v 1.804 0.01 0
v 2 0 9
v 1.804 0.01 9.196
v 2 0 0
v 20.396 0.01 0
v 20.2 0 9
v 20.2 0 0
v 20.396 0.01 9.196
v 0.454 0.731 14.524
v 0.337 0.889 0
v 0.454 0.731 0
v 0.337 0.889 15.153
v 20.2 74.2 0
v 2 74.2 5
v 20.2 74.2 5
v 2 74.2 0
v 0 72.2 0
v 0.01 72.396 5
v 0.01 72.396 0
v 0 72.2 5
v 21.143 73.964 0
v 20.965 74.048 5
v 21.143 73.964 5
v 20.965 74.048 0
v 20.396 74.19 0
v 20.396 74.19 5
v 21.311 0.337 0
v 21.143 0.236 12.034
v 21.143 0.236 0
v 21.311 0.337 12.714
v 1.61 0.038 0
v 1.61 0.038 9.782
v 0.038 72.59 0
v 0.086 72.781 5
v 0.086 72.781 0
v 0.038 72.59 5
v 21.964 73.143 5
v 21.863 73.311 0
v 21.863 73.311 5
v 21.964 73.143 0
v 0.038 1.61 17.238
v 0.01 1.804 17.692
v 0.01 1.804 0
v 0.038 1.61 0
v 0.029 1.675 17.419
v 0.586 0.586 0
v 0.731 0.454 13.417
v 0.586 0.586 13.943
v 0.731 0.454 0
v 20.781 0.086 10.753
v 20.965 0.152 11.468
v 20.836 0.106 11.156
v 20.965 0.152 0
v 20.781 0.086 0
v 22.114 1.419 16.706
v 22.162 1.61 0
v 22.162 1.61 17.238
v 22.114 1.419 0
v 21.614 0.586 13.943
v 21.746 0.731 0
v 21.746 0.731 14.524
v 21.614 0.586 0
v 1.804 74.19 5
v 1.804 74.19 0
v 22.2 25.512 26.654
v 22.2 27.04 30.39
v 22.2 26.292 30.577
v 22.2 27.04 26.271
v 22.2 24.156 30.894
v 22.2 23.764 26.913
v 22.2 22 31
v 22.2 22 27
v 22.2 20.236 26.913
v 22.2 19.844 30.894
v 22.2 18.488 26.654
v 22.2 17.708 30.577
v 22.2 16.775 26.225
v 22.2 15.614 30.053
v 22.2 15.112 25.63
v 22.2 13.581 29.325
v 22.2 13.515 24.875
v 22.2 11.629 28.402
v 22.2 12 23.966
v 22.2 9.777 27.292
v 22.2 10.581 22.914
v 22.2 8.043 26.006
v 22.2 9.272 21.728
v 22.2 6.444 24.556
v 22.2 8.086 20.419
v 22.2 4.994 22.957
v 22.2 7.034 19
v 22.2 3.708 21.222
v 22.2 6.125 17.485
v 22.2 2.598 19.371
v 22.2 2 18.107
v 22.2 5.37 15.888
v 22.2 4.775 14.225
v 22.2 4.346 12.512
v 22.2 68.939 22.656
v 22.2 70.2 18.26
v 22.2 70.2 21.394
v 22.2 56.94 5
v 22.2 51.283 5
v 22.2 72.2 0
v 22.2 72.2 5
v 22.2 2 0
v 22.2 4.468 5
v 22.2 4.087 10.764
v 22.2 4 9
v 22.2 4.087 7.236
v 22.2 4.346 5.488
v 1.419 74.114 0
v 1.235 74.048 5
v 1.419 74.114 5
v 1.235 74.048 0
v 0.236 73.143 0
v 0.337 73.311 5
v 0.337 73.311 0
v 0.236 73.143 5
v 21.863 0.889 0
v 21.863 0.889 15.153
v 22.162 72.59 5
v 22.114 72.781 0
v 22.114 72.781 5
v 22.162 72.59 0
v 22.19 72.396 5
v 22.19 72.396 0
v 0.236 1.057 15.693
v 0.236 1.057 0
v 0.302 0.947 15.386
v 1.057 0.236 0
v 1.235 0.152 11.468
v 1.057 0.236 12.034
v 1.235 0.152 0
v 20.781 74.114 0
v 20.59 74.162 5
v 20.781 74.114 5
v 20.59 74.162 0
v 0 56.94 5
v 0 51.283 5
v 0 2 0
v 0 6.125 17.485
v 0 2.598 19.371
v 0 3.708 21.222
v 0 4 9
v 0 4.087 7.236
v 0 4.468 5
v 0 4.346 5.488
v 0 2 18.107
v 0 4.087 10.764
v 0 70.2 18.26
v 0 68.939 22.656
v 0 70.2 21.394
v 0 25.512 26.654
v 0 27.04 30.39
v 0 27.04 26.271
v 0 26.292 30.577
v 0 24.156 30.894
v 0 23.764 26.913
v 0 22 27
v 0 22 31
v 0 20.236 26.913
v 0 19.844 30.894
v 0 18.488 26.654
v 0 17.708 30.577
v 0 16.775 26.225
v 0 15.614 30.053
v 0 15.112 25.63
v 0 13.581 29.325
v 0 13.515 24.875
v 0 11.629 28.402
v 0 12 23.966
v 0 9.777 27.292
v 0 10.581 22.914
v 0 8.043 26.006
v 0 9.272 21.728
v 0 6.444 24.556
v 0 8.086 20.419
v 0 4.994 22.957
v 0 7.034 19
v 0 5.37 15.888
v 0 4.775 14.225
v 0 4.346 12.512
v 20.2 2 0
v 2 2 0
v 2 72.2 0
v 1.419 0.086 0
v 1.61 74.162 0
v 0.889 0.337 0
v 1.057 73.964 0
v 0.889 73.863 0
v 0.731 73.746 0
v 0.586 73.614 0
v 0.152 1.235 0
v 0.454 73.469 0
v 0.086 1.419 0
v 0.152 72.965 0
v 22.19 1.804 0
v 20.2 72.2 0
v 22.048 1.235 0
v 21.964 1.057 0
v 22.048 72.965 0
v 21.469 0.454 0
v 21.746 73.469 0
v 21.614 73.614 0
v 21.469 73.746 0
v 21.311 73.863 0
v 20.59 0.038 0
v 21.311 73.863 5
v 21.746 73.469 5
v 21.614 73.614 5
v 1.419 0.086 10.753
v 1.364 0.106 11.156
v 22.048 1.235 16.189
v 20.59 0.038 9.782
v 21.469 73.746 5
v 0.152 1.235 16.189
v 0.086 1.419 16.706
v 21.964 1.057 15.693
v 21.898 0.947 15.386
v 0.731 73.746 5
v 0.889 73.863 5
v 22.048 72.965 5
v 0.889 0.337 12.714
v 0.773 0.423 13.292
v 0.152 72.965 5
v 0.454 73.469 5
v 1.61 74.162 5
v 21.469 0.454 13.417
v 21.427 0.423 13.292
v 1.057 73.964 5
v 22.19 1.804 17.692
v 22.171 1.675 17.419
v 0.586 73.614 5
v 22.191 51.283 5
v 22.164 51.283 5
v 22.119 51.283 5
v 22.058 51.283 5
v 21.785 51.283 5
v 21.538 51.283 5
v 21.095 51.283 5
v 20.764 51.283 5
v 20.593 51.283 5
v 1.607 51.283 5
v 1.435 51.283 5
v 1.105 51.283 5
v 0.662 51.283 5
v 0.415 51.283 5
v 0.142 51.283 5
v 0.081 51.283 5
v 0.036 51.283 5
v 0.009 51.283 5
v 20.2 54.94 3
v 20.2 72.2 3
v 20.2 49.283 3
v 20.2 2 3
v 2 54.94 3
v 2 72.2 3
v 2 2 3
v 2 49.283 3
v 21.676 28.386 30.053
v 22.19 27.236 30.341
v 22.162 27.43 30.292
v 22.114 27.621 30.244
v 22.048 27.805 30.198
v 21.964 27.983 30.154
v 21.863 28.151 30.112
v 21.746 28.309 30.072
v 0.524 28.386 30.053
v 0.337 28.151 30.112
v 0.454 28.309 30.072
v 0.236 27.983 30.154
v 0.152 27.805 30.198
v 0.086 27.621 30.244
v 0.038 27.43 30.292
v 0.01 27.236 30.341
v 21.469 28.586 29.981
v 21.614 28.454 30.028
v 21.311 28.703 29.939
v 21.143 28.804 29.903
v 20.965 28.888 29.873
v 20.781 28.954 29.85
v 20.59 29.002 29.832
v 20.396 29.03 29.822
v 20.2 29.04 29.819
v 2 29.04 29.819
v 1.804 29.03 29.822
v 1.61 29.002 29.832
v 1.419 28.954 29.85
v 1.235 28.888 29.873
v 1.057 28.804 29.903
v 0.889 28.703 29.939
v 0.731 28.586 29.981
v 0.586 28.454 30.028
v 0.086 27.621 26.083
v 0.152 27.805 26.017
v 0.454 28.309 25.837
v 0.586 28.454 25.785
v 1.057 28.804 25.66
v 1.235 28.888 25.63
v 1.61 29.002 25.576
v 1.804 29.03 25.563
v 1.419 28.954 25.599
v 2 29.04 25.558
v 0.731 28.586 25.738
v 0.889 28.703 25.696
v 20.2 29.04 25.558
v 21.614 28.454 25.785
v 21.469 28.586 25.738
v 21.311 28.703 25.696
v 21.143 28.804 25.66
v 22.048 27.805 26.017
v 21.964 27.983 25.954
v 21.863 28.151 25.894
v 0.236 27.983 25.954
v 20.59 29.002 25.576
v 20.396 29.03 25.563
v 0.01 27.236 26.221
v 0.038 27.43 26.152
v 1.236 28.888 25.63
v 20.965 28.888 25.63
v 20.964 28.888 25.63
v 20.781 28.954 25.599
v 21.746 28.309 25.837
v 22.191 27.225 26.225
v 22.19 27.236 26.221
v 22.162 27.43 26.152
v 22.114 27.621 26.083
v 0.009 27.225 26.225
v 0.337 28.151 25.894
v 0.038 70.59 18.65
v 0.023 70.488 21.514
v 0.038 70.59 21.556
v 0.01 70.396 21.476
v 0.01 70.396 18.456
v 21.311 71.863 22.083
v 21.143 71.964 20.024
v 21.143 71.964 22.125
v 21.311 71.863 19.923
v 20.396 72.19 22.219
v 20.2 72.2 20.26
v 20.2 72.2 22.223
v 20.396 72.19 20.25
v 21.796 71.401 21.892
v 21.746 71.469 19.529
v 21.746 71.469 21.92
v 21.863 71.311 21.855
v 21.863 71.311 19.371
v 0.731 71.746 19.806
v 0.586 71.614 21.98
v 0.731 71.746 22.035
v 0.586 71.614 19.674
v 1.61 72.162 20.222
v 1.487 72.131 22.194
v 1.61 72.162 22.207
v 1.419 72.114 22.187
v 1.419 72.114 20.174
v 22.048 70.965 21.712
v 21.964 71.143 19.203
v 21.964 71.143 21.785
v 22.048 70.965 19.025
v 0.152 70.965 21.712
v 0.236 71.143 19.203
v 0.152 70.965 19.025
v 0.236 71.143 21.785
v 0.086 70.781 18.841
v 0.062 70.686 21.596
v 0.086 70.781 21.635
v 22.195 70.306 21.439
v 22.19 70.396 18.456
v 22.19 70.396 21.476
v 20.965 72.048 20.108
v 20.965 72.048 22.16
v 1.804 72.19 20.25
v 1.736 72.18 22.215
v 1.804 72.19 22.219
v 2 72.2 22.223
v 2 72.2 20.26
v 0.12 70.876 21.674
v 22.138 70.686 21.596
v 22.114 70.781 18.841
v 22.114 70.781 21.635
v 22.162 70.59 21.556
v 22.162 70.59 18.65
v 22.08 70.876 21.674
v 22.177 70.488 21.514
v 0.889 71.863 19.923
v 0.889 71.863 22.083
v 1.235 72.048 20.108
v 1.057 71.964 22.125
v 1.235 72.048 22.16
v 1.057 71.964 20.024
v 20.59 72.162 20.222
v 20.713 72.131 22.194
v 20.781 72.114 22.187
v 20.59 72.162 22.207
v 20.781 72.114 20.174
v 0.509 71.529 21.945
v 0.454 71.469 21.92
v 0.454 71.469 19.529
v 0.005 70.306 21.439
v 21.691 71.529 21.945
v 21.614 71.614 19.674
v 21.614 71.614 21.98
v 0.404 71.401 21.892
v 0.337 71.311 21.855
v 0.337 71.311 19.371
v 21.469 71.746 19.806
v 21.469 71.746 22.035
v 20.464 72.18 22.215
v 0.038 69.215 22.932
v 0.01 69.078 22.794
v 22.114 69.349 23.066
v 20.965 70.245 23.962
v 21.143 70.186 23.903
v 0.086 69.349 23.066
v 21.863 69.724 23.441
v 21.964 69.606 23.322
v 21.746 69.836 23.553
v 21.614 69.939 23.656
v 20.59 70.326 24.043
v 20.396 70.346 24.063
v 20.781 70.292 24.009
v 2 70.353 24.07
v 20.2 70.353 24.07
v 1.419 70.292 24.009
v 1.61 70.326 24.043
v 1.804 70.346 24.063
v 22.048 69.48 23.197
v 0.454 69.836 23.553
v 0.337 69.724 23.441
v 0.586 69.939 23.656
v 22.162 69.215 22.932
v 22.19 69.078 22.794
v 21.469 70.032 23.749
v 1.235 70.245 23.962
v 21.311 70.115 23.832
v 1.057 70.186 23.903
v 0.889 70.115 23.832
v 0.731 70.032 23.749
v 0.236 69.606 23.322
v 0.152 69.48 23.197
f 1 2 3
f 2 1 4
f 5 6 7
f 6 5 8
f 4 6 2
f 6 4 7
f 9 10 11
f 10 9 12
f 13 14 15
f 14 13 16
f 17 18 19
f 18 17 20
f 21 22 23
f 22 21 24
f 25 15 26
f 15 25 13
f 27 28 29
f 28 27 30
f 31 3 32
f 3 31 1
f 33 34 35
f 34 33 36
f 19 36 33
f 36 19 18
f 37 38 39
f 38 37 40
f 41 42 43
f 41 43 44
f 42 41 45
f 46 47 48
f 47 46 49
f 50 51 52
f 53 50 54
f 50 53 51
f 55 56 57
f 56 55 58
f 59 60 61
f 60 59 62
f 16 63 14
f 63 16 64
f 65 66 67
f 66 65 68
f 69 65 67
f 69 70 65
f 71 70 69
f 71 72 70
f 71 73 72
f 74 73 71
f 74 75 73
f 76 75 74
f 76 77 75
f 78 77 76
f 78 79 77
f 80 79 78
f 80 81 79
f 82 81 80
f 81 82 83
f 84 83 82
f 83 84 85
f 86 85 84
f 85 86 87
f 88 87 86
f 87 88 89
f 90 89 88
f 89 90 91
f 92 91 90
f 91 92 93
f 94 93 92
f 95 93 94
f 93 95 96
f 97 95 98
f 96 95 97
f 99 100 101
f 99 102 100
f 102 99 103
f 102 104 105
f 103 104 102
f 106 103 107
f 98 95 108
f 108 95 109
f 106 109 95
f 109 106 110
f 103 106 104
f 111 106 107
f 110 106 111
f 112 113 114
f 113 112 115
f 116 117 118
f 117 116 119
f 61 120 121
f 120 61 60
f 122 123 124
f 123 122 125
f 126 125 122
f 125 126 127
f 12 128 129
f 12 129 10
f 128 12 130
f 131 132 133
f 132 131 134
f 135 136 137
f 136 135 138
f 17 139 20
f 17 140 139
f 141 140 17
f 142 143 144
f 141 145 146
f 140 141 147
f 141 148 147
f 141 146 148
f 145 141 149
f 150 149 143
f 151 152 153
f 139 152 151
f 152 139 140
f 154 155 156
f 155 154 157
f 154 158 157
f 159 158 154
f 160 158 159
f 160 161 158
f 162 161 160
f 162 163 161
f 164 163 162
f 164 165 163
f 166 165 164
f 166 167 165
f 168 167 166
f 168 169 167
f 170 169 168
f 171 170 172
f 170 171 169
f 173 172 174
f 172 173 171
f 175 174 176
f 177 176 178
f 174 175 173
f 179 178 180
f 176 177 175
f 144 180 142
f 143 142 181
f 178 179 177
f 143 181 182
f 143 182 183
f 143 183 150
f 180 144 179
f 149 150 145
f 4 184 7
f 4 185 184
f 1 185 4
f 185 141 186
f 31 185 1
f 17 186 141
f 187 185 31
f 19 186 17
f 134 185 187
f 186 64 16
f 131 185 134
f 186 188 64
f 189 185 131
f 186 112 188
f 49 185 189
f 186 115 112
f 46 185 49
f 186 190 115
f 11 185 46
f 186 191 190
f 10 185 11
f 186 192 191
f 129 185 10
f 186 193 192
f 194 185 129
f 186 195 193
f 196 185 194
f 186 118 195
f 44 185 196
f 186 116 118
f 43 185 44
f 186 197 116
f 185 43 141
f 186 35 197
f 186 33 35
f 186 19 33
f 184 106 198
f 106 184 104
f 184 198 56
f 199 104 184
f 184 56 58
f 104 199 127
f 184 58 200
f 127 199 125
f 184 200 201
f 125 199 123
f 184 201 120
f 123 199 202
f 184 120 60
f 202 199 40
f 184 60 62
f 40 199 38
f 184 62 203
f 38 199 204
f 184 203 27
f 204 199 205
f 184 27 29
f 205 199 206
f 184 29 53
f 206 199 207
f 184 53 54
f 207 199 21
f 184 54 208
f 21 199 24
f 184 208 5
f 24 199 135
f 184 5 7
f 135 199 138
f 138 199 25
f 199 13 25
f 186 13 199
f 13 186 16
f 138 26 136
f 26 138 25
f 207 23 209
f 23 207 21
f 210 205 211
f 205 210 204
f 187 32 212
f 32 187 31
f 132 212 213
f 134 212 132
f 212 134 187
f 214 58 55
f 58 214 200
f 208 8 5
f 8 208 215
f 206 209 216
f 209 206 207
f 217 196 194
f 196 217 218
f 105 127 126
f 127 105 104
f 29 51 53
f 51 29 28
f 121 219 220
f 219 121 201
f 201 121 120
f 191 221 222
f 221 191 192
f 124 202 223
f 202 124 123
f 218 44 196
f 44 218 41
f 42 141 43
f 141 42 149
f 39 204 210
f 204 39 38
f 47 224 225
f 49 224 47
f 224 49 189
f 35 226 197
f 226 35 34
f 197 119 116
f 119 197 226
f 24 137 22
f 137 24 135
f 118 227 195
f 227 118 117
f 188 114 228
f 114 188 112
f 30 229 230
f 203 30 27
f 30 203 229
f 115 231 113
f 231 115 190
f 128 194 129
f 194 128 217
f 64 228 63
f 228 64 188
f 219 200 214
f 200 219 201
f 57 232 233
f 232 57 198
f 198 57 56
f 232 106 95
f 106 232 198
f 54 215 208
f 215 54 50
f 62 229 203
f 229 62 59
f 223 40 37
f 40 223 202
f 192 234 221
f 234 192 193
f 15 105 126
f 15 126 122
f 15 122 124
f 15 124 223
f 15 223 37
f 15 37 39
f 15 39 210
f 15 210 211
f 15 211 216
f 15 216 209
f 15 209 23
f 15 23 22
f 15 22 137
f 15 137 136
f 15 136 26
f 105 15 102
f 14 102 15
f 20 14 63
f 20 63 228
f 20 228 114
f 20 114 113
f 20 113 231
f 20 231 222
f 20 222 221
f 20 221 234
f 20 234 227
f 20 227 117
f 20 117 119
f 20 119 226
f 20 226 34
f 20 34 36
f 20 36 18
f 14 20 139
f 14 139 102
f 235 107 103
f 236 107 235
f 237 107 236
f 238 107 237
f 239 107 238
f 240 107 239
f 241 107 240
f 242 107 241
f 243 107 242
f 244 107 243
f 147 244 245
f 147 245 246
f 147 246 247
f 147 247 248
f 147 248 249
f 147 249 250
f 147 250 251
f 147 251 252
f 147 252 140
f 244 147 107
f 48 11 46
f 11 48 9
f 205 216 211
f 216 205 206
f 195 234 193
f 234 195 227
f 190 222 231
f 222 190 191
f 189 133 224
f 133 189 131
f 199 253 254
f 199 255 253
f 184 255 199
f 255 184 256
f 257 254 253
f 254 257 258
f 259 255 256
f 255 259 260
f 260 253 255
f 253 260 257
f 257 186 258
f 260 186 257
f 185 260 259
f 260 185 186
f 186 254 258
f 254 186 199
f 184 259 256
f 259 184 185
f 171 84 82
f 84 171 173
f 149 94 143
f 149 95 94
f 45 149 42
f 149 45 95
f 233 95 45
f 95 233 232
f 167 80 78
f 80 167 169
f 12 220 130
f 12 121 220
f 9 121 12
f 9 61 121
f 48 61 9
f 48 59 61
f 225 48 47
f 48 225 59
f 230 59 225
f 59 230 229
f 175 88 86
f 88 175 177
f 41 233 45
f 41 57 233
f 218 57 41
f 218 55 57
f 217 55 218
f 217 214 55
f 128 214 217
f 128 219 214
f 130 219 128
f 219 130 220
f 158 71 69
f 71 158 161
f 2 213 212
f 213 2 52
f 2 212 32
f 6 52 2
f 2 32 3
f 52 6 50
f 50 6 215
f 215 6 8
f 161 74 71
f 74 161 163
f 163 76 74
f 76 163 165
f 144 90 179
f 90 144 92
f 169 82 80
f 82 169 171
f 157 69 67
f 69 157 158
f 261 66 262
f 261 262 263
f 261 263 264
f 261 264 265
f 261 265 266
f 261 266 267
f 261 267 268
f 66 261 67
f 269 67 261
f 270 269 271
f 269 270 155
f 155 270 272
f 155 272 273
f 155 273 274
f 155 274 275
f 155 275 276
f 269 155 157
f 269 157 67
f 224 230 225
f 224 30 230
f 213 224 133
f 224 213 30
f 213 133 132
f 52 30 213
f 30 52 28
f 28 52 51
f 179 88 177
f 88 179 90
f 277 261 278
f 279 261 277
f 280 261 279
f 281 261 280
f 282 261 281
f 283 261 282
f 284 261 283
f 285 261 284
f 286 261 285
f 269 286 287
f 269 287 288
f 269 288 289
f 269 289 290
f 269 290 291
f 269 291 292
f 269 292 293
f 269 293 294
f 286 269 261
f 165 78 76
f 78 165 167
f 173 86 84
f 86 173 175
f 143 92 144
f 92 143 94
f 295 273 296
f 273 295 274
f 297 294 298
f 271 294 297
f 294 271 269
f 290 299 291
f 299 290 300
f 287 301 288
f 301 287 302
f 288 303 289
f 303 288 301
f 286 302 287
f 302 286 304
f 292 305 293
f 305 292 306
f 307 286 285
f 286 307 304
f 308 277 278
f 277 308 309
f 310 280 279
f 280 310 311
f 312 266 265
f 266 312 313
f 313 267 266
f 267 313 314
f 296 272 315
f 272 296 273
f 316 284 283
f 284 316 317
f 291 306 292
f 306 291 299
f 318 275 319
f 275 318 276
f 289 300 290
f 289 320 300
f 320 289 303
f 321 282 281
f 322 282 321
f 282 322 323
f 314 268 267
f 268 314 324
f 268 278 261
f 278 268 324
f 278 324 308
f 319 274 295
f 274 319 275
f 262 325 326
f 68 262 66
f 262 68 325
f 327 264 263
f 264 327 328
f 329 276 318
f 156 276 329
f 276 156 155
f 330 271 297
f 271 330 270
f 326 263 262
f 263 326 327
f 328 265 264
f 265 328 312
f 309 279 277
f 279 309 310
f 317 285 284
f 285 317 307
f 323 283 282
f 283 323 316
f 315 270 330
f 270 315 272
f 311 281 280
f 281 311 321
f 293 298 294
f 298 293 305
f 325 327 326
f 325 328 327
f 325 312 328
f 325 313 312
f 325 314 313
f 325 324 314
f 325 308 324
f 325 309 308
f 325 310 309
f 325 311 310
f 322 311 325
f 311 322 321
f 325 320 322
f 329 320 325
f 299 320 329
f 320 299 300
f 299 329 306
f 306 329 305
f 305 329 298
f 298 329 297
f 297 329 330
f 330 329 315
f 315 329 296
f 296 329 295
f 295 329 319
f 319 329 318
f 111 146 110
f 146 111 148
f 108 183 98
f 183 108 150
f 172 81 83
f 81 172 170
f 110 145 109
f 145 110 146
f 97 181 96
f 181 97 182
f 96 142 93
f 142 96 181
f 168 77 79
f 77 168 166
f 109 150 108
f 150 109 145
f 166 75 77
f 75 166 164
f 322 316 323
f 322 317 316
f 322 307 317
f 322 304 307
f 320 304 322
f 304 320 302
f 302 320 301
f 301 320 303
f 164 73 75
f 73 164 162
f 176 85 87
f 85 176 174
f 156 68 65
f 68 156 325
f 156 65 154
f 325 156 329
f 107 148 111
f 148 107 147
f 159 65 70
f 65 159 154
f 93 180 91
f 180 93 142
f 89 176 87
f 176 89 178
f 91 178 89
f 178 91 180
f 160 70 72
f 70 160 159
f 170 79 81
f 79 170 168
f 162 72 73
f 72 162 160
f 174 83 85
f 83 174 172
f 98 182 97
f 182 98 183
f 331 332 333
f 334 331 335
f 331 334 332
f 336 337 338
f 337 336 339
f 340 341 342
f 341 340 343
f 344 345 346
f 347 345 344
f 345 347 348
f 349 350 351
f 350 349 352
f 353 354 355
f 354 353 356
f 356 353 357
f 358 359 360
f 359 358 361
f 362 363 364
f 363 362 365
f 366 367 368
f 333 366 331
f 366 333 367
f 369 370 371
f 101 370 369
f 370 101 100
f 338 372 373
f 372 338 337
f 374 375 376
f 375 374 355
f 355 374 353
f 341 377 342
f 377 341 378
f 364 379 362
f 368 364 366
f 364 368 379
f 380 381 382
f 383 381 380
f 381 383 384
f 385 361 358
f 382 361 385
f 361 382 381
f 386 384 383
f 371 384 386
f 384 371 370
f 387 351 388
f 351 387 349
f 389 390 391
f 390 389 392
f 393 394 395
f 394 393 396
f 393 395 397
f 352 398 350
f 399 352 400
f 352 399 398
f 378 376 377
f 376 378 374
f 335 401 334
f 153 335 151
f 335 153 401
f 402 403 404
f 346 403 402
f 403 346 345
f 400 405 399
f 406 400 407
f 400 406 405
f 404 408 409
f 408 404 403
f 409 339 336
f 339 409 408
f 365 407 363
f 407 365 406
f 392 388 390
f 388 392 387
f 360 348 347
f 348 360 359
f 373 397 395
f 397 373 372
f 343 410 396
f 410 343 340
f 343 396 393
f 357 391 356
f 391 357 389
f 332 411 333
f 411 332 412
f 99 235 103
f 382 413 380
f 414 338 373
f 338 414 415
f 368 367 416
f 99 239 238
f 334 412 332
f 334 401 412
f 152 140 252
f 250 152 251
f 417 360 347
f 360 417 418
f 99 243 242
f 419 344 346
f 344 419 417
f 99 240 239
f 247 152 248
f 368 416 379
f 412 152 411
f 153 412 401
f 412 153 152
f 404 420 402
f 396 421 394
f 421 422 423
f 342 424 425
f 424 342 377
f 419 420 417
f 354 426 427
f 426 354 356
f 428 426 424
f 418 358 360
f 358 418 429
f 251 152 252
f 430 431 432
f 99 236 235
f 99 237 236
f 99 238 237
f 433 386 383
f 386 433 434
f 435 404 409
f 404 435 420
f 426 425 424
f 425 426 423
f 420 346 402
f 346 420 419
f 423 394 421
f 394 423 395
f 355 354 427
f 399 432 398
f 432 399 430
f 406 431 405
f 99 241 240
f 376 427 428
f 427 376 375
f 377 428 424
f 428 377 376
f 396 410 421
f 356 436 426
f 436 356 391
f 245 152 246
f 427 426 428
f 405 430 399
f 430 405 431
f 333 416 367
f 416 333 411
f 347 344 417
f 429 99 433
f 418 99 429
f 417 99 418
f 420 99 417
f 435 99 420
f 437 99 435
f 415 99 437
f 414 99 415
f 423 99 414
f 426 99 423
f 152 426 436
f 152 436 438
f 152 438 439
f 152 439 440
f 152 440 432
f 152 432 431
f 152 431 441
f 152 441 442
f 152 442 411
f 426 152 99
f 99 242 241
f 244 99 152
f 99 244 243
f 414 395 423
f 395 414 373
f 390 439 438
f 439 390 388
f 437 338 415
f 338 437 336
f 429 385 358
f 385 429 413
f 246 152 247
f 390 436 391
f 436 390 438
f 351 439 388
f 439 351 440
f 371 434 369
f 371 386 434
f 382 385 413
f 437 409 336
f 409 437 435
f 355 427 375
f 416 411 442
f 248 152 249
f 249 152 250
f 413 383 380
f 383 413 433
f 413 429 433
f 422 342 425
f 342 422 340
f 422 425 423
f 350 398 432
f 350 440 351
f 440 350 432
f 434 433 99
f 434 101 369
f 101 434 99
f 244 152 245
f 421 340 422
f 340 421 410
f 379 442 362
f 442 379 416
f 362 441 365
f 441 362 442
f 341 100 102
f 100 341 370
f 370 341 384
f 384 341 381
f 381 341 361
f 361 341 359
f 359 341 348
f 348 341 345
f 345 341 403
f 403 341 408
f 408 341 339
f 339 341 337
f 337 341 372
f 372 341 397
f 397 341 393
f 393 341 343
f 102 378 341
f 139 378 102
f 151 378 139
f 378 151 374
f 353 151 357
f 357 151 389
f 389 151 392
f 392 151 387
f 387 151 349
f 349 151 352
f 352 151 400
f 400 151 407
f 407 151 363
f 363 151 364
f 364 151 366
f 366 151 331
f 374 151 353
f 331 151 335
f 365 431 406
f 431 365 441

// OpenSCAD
// file: ../modules/roundedcube.scad
// A single integer creates a cube with the specified wall distance. Default [1, 1, 1]
// size = 5;

// An [x, y, z] vector specifies distance on each axis. Default [1, 1, 1]
// size = [2, 3, 5];

// Whether or not to place the object centered on the origin. Default false
// center = true|false;

// Specify a rounding radius. Default 0.5
// radius = 0.5

// Specify where to apply the rounded corners. Default "all"
// apply_to = "all"|"x"|"y"|"z"|"zmax"|"zmin"|"xmax"|"xmin"|"ymax"|"ymin"

// Higher definition curves
$fs = $preview ? $fs : 0.01;

module roundedcube(size = [1, 1, 1], center = false, radius = 0.5, apply_to = "all") {
	// If single value, convert to [x, y, z] vector
	size = (size[0] == undef) ? [size, size, size] : size;

    echo(str("roundedcube(", size, ", radius=", radius, ", apply_to=", apply_to));

	translate_min = 0;
	translate_xmax = size[0];
	translate_ymax = size[1];
	translate_zmax = size[2];

	diameter = radius * 2;

    function adj2(i,dt,df) = (i==0)?dt:df;
    function adj(i,d) = adj2(i,d,-d);
    function adjR(i) = adj(i,radius);
    
	obj_translate = (center == false) ?
		[0, 0, 0] : [
			-(size[0] / 2),
			-(size[1] / 2),
			-(size[2] / 2)
		];

	translate(v = obj_translate) {
		hull() {
			for (xi = [0:1]) {
                translate_x = [translate_min, translate_xmax][xi];
				x_at = (xi == 0) ? "min" : "max";
				for (yi = [0:1]) {
                    translate_y = [translate_min, translate_ymax][yi];
   				    y_at = (yi == 0) ? "min" : "max";
					for (zi = [0:1]) {
                        translate_z = [translate_min, translate_zmax][zi];
    	     			z_at = (zi == 0) ? "min" : "max";

						if (
							(apply_to == "all") ||
							(apply_to == "xmin" && x_at == "min") || (apply_to == "xmax" && x_at == "max") ||
							(apply_to == "ymin" && y_at == "min") || (apply_to == "ymax" && y_at == "max") ||
							(apply_to == "zmin" && z_at == "min") || (apply_to == "zmax" && z_at == "max")
						) {
                            // GGS: Separate translates to asccomodate changes allowing sizes < 3 x radius
    						translate(v = [translate_x+adjR(xi), translate_y+adjR(yi), translate_z+adjR(zi)])
							  sphere(r = radius);
						} else {
							rotate = 
								(apply_to == "xmin" || apply_to == "xmax" || apply_to == "x") ? [0, 90, 0] : (
								(apply_to == "ymin" || apply_to == "ymax" || apply_to == "y") ? [90, 90, 0] :
								[0, 0, 0]
							);
                            //Compute cylinder height to make it work with cubbe sizes up to 3xradius which did not work
                            // in original because cylinders would "eat" spheres
                            h1 =
								(apply_to == "xmin" || apply_to == "xmax" || apply_to == "x") ? size[0]-radius : (
								(apply_to == "ymin" || apply_to == "ymax" || apply_to == "y") ? size[1]-radius :
								size[2]-radius
							);
                            h2 =
								(apply_to == "xmin" || apply_to == "xmax" || apply_to == "x") ? size[0]/4 : (
								(apply_to == "ymin" || apply_to == "ymax" || apply_to == "y") ? size[1]/4 :
								size[2]/4
							);
                            h=(h1<h2 && h1>0)?h1:h2;
                            height=(h<radius)?h:radius;
                            //echo(str("h1=",h1));
                            //echo(str("h2=",h2));
                            //echo(str("h=",h));
                            //echo(str("height=",height));
                            trans =
								(apply_to == "xmin" || apply_to == "xmax" || apply_to == "x") ? [adj2(xi,0,-height),adjR(yi),adjR(zi)] : (
								(apply_to == "ymin" || apply_to == "ymax" || apply_to == "y") ? [adjR(xi),adj2(yi,0,-height),adjR(zi)] :
								[adjR(xi),adjR(yi),adj2(zi,0,-height)]
							);
                            //echo(trans);
                            translate(v = [translate_x+trans[0], translate_y+trans[1], translate_z+trans[2]])
		  					  rotate(a = rotate)
							    cylinder(h = height, r = radius, center = false);
						}
					}
				}
			}
		}
	}
}
// main file
// commnad strip width
cs_width = 18.2;

// command strip depth
cs_depth = 70.2;

// command strip height
cs_height = 3;

// hook depth
hook_depth = 44;
// hook thickness
hook_thickness = 4;
// hook height multiplier
hook_multiplier = 0.66;
// upper hook multiplier
upper_hook_multiplier = 0.70;
// hook height
hook_height = hook_depth * hook_multiplier;

// edge thickness
edge_thickness = 2;
// corner radius
radius = 2;

//translate([60,50,0]) import("/Users/bschumacher/Downloads/DoubleHook.stl");

use <../modules/roundedcube.scad>;

base_width = cs_width + (edge_thickness * 2);
base_depth = cs_depth + (edge_thickness * 2);
base_height = cs_height + (edge_thickness);

// resolution
$fn = 64;

difference() {    
    roundedcube([base_width, base_depth, base_height], radius=radius, apply_to="z", center=false);
    translate([edge_thickness, edge_thickness, 0]) cube([cs_width, cs_depth, cs_height], center=false);
}

hook_orad = hook_depth / 2;
//#translate([0, hook_orad, base_height+hook_thickness]) rotate([0, 90, 0]) cylinder(h=base_width, r=1);
//translate([0, hook_orad+hook_thickness+1, base_height+1]) rotate([0, 90, 0]) cylinder(h=base_width, r=1);

difference() {
    intersection() {
        union() {
            translate([0, hook_orad, base_height+hook_thickness]) rotate([0, 90, 0]) cylinder(h=base_width, r=hook_orad);
            translate([0, 0, base_height]) cube([base_width, hook_thickness, hook_thickness], center=false);
        }
        translate([0, 0, base_height]) roundedcube([base_width, hook_height, hook_depth], radius=radius, apply_to="z", center=false);
    }

    translate([-24, hook_orad, base_height+hook_thickness]) rotate([0, 90, 0]) cylinder(h=48, r=hook_orad-hook_thickness);
}

offset = base_depth * upper_hook_multiplier;
translate([0, offset, 0]) intersection() {
    #translate([0, -offset, cs_height]) roundedcube([base_width, base_depth-edge_thickness, hook_height], radius=radius, apply_to="z", center=false);
    translate([0, 0, 0]) rotate([45,0,0]) roundedcube([base_width, hook_height+1, hook_thickness], radius=radius, apply_to="z", center=false);
}

//#roundedcube([base_width, hook_bottom_height*0.75, 2], radius=radius, apply_to="z", center=true);
